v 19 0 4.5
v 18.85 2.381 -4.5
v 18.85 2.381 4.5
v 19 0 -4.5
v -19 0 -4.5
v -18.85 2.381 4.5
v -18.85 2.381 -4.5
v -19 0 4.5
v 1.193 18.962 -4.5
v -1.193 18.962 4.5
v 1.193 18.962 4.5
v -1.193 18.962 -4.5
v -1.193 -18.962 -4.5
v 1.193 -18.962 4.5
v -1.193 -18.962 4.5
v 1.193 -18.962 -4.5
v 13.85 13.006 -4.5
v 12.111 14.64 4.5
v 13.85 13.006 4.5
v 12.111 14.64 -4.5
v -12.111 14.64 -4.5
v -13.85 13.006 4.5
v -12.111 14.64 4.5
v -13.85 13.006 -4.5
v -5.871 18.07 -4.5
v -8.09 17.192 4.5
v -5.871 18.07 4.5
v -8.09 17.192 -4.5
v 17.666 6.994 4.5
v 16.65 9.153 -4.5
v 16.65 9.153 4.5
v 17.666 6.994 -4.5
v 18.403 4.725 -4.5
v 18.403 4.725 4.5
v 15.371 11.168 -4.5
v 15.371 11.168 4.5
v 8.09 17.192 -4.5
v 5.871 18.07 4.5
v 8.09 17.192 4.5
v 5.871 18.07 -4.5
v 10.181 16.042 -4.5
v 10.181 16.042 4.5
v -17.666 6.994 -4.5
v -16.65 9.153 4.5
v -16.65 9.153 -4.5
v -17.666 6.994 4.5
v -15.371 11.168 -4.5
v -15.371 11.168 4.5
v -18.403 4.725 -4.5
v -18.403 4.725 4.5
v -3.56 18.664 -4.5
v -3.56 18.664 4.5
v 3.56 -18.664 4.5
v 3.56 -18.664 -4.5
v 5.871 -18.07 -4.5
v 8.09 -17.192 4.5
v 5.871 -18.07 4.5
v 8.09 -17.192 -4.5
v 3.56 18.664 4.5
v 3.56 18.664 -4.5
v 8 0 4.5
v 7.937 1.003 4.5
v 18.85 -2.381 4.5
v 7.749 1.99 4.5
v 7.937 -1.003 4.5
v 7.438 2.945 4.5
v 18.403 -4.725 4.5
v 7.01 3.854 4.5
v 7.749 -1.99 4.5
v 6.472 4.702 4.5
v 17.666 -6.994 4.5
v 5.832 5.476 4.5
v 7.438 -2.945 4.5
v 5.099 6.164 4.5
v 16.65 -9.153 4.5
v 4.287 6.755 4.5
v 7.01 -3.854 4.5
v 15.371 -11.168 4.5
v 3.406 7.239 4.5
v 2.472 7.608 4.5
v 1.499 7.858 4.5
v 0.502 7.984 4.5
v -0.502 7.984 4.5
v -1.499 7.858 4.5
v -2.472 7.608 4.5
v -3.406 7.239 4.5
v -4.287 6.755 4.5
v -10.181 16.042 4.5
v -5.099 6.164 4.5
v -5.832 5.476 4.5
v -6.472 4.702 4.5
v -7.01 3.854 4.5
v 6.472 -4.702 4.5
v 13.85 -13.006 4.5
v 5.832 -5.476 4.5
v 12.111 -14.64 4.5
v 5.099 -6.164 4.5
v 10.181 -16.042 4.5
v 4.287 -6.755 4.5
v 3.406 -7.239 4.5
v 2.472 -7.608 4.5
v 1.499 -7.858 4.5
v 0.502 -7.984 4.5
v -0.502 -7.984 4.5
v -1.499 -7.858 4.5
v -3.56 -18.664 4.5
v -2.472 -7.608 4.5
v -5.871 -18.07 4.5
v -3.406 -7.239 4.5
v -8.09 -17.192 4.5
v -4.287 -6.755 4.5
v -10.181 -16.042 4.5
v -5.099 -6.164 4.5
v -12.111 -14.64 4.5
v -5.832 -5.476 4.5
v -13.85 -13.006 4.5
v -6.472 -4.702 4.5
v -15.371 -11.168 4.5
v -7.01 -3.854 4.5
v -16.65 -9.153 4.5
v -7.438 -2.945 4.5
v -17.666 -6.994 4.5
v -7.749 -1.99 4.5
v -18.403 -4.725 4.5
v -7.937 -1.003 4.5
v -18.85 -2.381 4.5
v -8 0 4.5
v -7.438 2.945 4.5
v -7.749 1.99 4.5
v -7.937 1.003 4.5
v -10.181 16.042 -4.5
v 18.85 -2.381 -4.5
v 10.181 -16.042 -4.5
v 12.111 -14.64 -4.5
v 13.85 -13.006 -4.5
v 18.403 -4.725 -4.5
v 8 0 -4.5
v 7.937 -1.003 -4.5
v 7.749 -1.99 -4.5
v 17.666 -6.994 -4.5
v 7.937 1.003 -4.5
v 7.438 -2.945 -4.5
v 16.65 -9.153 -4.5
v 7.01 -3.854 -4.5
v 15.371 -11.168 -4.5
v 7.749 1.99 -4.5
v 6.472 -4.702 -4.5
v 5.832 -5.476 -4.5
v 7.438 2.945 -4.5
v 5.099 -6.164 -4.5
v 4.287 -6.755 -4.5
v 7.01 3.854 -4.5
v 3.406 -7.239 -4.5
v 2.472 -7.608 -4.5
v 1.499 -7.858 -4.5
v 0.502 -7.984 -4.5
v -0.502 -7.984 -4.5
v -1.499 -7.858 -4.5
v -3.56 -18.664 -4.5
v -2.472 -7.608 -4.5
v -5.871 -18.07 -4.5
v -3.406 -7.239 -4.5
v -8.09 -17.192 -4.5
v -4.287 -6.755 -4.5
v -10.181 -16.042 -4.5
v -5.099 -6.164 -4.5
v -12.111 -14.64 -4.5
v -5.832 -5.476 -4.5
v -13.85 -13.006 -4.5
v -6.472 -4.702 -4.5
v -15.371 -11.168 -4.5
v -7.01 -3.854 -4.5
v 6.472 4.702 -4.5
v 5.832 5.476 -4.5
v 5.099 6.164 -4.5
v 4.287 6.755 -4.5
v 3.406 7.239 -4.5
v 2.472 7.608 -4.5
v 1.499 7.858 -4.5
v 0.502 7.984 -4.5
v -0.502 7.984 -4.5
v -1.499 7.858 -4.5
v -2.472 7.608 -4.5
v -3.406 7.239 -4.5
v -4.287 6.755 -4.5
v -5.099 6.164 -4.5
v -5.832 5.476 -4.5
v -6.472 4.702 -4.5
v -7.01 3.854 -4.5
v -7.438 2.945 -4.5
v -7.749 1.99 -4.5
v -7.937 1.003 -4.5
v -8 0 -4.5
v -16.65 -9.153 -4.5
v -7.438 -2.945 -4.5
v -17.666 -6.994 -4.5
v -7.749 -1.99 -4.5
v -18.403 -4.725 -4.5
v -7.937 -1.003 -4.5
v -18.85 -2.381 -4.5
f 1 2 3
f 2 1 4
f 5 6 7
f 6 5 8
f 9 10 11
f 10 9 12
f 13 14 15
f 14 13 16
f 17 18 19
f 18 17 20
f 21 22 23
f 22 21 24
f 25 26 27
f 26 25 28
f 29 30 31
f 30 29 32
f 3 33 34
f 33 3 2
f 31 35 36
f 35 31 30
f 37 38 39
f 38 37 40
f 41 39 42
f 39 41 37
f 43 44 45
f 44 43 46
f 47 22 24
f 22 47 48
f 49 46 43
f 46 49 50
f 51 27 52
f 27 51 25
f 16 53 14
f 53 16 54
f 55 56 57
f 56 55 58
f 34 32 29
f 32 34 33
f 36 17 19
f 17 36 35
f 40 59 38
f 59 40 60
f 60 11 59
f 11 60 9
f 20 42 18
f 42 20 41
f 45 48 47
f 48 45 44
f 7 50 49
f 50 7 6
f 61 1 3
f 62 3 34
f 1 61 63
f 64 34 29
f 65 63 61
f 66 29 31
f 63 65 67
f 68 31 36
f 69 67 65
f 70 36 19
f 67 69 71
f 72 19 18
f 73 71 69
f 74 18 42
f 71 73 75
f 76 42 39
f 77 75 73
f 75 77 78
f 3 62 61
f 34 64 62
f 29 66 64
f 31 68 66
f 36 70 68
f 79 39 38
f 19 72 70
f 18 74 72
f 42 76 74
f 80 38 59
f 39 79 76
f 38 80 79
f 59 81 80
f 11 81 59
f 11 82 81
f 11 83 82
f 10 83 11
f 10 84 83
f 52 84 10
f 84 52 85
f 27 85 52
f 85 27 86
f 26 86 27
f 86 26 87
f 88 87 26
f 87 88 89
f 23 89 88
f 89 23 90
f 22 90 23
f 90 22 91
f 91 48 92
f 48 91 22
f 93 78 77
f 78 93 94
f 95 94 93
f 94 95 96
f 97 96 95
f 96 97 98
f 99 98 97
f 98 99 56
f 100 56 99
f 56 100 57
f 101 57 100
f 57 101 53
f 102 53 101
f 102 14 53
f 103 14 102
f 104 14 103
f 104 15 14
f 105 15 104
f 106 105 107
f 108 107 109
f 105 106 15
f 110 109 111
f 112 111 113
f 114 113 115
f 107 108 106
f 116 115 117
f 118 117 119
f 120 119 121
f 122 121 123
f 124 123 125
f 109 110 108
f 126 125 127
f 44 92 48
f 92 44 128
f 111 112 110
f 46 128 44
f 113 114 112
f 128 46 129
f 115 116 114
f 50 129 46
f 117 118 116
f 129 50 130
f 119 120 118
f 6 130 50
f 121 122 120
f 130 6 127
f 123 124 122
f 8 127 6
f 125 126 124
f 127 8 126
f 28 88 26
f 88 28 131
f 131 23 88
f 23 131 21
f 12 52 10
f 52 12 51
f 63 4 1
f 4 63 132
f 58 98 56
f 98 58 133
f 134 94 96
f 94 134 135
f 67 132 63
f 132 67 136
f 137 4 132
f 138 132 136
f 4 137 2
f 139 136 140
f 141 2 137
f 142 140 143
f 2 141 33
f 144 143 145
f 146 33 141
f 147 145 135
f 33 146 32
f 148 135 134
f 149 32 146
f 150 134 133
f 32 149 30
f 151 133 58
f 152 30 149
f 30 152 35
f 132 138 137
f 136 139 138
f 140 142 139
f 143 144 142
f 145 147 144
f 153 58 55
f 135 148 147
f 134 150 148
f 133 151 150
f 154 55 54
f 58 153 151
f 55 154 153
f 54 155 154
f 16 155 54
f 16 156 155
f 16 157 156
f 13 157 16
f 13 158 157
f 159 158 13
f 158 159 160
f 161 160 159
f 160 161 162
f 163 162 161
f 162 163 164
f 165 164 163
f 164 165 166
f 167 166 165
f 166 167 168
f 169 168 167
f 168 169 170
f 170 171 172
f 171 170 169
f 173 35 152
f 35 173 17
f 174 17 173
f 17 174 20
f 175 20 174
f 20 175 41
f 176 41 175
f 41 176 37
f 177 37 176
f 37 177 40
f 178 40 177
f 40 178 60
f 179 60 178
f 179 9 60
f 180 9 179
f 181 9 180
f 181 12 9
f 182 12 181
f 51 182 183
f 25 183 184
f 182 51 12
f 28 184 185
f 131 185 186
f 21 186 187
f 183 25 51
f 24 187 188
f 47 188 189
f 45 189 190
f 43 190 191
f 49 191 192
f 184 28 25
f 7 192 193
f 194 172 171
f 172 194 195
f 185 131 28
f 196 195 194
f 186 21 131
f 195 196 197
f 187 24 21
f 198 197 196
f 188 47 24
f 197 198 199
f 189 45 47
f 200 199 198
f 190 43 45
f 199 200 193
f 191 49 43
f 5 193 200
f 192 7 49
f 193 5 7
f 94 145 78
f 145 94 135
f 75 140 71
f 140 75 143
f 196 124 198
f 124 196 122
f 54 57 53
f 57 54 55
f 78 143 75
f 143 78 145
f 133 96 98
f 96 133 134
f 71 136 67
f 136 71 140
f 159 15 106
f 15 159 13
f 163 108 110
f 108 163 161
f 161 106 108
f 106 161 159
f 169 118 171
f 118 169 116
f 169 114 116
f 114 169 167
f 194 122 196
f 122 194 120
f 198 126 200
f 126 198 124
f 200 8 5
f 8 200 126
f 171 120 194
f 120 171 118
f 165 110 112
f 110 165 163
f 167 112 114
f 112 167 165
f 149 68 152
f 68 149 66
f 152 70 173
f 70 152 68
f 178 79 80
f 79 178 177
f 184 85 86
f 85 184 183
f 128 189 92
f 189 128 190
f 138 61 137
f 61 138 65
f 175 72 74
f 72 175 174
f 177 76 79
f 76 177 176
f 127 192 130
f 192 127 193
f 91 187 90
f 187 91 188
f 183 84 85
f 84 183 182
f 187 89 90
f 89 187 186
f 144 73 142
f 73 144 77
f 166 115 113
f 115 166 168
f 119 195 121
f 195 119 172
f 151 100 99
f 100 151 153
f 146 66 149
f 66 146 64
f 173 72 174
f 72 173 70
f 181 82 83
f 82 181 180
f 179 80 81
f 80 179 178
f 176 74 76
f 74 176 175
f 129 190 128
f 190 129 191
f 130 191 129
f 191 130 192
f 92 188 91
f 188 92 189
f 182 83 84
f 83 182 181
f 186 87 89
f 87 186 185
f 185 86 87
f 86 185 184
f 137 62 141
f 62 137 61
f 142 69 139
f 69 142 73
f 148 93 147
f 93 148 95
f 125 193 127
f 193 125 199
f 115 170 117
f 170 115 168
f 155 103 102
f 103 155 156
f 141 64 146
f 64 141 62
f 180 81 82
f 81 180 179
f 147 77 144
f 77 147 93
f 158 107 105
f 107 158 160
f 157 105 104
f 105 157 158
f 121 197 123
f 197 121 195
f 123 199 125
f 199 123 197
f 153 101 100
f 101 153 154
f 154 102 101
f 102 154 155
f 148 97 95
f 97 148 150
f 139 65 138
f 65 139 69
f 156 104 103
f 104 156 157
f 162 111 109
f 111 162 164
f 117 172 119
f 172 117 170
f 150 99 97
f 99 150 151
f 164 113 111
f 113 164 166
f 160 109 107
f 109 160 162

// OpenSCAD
$fn = 50;


difference() {
	union() {
		translate(v = [0, 0, -4.5000000000]) {
			cylinder(h = 9, r = 19.0000000000);
		}
	}
	union() {
		translate(v = [0, 0, -100.0000000000]) {
			cylinder(h = 200, r = 8);
		}
	}
}
